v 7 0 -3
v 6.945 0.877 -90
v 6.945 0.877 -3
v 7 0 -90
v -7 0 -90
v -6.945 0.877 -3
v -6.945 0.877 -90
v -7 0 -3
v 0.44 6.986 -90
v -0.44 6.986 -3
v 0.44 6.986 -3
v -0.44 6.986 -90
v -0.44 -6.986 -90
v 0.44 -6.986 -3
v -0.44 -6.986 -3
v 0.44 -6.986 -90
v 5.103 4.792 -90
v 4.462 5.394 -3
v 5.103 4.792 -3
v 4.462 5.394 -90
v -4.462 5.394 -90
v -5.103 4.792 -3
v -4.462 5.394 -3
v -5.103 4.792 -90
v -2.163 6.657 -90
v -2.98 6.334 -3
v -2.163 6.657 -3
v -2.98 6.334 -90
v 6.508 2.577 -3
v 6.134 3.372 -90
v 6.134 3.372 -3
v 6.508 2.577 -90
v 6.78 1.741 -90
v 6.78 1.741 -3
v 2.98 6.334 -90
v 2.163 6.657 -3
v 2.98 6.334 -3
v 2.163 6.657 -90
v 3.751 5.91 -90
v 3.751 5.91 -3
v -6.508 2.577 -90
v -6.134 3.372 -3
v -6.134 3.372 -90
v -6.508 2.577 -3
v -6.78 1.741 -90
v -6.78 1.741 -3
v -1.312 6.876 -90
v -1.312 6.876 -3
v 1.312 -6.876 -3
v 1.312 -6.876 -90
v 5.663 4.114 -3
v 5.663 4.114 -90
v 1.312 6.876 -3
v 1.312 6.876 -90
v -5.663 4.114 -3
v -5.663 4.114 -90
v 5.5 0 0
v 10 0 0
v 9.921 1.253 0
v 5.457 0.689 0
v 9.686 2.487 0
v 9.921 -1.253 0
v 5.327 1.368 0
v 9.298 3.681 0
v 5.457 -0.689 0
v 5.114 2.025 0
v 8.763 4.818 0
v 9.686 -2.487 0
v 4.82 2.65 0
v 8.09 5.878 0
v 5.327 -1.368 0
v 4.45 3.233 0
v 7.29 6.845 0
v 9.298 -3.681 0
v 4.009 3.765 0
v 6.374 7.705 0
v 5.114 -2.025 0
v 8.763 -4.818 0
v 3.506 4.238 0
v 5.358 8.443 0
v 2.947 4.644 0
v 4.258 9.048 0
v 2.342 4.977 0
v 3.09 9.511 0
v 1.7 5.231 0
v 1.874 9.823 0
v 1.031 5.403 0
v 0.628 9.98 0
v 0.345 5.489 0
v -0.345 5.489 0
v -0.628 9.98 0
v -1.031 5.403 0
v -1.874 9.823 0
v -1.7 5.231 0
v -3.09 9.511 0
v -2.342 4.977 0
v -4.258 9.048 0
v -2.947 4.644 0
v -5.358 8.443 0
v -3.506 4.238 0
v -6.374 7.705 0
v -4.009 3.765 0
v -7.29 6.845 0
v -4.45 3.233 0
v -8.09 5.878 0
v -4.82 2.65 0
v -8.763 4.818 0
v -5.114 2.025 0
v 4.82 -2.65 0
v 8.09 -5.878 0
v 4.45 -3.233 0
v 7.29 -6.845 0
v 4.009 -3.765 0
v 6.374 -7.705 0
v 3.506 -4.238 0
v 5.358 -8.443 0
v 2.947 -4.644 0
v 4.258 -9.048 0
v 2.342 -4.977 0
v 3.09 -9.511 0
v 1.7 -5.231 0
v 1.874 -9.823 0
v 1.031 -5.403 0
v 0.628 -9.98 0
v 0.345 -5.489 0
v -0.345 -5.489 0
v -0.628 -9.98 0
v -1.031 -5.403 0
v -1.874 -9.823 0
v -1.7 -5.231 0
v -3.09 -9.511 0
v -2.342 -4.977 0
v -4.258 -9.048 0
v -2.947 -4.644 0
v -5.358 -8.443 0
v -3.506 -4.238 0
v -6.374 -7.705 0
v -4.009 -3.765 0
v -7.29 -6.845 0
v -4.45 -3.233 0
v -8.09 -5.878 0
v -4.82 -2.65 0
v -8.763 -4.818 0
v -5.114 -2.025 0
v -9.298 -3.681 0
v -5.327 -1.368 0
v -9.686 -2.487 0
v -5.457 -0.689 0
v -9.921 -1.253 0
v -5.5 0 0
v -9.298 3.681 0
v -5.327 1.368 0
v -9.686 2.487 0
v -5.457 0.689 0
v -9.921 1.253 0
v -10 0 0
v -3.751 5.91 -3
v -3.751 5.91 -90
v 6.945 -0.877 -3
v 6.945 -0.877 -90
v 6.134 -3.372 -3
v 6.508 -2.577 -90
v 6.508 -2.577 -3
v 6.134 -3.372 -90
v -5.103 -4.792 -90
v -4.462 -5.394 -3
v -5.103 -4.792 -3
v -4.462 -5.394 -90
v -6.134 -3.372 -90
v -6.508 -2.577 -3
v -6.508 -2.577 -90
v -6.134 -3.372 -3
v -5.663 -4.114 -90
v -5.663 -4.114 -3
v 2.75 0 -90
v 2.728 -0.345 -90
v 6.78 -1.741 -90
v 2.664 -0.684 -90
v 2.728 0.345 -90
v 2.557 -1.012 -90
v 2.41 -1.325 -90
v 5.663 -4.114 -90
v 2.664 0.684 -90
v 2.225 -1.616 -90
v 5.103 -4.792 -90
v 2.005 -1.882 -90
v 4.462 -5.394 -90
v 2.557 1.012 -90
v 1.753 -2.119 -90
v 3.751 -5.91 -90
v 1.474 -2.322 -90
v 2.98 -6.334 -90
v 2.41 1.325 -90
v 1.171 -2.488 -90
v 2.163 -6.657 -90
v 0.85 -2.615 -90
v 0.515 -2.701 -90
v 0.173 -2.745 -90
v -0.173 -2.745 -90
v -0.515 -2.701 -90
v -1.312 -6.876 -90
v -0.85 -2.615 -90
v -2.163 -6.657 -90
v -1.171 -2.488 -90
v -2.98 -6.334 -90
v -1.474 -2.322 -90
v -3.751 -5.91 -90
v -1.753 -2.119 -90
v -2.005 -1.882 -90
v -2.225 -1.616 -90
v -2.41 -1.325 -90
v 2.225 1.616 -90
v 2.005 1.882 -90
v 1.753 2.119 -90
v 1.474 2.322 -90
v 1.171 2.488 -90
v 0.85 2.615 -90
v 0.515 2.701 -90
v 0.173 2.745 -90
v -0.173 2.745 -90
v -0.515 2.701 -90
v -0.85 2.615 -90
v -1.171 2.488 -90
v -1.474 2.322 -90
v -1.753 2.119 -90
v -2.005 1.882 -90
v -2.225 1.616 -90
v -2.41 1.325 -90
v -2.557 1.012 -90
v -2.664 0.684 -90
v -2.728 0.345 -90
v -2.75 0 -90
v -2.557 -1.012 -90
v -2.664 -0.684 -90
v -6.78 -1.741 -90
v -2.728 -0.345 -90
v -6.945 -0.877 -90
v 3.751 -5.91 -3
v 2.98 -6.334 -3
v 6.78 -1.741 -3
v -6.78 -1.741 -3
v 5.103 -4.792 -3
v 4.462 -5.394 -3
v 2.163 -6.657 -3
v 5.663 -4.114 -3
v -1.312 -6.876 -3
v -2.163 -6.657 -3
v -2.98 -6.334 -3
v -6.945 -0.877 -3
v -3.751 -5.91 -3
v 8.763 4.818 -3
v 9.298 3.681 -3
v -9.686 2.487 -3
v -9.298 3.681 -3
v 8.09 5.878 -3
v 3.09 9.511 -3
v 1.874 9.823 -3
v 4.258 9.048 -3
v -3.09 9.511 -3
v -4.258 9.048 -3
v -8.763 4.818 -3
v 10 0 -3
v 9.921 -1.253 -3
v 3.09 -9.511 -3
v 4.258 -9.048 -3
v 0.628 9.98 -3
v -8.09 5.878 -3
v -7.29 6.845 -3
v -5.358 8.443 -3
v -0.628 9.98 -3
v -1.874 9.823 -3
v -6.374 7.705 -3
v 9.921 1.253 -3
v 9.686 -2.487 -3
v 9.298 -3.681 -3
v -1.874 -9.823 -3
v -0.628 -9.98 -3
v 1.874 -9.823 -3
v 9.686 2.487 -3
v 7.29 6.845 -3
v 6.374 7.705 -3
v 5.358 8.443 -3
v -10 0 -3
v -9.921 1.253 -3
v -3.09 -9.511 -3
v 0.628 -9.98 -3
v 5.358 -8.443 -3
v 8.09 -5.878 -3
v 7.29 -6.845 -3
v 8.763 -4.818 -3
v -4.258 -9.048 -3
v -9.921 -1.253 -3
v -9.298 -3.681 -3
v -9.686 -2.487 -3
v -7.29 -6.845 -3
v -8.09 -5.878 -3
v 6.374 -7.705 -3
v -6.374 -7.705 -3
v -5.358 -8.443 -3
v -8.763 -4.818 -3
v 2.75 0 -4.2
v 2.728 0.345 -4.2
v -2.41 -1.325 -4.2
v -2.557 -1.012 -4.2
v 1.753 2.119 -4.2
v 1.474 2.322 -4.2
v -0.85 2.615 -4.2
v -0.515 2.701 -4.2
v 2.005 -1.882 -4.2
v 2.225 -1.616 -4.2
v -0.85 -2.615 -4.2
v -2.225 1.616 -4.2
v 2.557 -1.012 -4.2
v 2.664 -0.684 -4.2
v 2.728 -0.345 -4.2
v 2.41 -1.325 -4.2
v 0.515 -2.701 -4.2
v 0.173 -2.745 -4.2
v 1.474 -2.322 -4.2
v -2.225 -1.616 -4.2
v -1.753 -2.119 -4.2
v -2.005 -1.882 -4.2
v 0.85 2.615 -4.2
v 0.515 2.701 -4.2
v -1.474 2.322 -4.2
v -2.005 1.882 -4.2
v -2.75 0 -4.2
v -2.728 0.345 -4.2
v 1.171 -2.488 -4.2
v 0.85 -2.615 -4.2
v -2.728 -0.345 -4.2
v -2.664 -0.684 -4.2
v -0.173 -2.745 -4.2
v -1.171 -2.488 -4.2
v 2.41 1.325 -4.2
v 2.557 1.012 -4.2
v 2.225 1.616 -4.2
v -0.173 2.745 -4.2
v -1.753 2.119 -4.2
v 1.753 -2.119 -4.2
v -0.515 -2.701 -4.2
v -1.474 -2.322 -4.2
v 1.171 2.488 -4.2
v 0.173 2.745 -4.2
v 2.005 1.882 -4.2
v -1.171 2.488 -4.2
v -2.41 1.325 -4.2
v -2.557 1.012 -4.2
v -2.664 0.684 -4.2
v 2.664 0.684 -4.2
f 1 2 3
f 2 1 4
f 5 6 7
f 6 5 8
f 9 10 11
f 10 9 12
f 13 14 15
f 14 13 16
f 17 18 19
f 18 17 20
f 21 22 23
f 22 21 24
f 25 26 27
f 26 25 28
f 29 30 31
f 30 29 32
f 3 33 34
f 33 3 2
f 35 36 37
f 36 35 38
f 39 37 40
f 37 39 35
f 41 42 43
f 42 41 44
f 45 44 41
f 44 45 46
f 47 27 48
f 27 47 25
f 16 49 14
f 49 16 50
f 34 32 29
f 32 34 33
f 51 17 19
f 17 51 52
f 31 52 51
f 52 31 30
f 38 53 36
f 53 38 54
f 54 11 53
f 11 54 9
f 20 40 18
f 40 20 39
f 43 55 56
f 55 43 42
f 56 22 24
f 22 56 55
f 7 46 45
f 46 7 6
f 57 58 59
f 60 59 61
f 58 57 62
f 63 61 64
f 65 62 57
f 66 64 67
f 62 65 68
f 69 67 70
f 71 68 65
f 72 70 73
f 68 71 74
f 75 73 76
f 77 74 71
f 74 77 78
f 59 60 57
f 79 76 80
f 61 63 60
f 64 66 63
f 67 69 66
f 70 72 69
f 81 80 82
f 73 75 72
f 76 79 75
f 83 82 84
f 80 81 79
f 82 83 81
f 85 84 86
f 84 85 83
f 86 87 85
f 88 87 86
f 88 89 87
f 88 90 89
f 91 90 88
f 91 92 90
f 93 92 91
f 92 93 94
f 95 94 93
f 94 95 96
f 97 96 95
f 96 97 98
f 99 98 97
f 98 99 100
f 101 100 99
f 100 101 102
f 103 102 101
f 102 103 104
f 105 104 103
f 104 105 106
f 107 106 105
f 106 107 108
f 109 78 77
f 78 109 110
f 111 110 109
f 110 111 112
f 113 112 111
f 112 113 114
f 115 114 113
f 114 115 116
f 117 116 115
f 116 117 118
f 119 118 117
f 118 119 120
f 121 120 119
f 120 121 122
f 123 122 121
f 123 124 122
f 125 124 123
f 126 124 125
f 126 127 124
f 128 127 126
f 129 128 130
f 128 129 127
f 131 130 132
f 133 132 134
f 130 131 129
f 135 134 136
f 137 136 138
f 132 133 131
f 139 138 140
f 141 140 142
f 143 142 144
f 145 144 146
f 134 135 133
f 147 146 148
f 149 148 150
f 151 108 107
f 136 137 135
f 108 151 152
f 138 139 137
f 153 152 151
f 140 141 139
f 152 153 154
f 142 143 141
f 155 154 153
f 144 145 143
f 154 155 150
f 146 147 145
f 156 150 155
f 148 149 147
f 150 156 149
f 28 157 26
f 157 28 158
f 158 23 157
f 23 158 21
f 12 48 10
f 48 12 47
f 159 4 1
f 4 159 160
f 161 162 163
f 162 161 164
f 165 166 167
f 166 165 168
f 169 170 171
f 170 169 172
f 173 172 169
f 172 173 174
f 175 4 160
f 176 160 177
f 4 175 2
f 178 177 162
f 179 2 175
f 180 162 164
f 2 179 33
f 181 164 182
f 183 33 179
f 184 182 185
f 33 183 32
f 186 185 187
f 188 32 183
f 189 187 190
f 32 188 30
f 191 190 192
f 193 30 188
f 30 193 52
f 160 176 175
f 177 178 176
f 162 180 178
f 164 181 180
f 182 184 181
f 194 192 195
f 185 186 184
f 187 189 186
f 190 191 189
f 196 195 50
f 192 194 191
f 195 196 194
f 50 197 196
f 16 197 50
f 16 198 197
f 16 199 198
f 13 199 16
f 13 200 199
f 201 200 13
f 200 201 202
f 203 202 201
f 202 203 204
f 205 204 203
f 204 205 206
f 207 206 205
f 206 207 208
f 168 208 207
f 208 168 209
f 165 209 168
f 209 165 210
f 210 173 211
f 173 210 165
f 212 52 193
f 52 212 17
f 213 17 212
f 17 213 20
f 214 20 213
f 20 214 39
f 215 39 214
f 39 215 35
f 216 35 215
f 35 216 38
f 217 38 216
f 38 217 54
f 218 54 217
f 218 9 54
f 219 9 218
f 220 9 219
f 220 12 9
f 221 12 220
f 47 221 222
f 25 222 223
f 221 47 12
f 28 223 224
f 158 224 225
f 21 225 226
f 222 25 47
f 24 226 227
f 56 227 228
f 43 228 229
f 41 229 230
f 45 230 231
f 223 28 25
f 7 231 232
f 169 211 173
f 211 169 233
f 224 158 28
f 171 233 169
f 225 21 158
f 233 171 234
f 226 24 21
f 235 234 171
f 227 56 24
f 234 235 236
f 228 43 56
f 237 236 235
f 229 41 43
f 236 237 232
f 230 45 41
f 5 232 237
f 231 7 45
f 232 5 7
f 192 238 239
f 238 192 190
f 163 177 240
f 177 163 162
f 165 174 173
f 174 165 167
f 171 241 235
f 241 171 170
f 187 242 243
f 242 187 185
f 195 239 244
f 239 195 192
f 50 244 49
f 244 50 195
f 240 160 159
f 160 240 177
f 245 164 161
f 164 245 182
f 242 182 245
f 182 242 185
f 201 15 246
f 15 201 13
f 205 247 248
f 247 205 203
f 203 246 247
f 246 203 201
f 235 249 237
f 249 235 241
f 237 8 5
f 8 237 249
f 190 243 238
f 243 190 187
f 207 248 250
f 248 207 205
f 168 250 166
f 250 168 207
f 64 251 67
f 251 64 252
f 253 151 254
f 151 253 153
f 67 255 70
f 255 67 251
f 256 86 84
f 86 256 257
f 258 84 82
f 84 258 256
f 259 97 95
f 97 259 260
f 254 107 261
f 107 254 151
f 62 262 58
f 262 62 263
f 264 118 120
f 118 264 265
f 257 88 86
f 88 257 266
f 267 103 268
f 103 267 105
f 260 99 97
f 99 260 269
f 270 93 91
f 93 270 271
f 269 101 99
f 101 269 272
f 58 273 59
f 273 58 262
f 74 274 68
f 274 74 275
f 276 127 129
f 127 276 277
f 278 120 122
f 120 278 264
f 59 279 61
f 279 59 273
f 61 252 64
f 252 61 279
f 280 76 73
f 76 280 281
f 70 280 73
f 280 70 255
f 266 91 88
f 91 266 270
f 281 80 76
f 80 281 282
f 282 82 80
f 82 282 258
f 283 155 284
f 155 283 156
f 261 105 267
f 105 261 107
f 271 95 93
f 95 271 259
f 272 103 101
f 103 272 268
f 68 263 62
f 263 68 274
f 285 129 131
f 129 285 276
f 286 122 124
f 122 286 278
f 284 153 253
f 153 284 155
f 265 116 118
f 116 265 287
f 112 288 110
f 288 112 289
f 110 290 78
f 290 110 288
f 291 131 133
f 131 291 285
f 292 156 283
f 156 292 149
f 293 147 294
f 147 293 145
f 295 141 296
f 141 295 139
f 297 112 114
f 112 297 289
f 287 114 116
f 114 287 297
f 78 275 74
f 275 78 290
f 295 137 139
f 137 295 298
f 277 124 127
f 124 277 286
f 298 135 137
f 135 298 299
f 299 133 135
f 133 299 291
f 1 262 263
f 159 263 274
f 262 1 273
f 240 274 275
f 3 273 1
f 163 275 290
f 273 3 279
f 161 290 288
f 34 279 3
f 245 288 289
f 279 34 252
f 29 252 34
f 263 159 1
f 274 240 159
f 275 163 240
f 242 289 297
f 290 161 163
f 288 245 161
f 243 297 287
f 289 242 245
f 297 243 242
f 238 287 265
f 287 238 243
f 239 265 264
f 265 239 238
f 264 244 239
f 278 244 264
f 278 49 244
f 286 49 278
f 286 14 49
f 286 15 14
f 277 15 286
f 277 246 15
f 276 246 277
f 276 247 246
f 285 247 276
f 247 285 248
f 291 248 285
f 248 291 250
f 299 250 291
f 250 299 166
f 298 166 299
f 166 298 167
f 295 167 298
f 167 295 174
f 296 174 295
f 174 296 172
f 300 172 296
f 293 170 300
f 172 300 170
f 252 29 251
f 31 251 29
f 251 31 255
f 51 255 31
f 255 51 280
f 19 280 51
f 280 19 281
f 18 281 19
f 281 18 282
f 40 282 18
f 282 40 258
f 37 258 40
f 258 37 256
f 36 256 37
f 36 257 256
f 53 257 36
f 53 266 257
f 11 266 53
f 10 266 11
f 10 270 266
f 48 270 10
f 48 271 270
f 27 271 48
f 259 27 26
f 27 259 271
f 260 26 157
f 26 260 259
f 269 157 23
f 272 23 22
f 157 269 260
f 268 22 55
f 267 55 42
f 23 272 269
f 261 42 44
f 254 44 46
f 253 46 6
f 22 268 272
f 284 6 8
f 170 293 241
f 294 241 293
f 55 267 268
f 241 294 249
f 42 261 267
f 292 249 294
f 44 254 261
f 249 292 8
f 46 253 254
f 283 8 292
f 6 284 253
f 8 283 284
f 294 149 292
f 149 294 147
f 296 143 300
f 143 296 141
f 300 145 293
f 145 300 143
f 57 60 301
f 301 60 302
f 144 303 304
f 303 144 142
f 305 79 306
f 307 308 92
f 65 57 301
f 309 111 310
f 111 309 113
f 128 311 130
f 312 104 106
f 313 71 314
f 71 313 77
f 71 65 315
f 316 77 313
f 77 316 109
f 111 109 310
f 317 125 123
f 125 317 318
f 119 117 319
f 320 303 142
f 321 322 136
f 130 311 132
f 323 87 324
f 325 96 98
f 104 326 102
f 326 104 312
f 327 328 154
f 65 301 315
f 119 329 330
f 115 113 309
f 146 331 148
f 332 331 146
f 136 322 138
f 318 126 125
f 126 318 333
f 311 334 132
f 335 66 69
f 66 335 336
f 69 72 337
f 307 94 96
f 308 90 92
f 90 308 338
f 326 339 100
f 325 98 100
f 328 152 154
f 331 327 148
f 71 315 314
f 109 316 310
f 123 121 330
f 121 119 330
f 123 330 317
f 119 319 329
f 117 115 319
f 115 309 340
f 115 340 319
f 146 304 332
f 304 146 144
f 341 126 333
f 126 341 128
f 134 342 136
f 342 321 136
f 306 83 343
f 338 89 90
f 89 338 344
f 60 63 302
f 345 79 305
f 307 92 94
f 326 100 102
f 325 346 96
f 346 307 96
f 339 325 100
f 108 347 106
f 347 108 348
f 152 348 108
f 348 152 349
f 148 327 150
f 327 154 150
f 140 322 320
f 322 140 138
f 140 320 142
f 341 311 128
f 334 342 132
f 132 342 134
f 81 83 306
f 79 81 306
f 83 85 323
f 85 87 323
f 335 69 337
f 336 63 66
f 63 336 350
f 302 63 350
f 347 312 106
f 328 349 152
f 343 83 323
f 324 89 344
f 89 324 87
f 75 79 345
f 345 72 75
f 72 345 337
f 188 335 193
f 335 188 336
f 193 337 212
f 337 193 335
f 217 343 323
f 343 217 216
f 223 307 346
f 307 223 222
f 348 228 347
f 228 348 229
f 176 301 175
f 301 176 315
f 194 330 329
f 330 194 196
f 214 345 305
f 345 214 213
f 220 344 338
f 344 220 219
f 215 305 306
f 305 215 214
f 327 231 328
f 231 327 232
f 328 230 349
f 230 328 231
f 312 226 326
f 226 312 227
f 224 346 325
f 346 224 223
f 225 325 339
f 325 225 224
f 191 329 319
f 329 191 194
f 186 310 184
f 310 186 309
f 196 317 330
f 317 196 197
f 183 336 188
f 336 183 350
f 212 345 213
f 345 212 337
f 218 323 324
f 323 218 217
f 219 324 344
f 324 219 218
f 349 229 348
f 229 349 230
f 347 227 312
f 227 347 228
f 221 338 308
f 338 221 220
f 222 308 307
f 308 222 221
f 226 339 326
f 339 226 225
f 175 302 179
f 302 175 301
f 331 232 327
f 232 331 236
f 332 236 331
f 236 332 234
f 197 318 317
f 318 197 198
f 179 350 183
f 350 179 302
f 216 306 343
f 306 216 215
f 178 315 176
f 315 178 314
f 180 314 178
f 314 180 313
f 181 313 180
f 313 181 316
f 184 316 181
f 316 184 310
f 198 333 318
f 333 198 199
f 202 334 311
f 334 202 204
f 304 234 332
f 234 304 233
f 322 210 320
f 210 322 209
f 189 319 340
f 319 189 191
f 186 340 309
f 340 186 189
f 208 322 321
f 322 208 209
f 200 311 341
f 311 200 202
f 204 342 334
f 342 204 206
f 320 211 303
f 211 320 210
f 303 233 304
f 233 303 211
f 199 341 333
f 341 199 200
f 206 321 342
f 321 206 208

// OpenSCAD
$fn = 50;


difference() {
	union() {
		translate(v = [0, 0, -90.0000000000]) {
			cylinder(h = 90, r = 7.0000000000);
		}
		translate(v = [0, 0, -3.0000000000]) {
			cylinder(h = 3, r = 10.0000000000);
		}
	}
	union() {
		translate(v = [0, 0, 0]) {
			rotate(a = [0, 0, 0]) {
				difference() {
					union() {
						#translate(v = [0, 0, -90.0000000000]) {
							cylinder(h = 90, r = 2.2500000000);
						}
						#translate(v = [0, 0, -4.2000000000]) {
							cylinder(h = 4.2000000000, r1 = 2.7500000000, r2 = 5.5000000000);
						}
						#translate(v = [0, 0, -90.0000000000]) {
							cylinder(h = 90, r = 2.7500000000);
						}
						#translate(v = [0, 0, -90.0000000000]) {
							cylinder(h = 90, r = 2.2500000000);
						}
					}
					union();
				}
			}
		}
	}
}
